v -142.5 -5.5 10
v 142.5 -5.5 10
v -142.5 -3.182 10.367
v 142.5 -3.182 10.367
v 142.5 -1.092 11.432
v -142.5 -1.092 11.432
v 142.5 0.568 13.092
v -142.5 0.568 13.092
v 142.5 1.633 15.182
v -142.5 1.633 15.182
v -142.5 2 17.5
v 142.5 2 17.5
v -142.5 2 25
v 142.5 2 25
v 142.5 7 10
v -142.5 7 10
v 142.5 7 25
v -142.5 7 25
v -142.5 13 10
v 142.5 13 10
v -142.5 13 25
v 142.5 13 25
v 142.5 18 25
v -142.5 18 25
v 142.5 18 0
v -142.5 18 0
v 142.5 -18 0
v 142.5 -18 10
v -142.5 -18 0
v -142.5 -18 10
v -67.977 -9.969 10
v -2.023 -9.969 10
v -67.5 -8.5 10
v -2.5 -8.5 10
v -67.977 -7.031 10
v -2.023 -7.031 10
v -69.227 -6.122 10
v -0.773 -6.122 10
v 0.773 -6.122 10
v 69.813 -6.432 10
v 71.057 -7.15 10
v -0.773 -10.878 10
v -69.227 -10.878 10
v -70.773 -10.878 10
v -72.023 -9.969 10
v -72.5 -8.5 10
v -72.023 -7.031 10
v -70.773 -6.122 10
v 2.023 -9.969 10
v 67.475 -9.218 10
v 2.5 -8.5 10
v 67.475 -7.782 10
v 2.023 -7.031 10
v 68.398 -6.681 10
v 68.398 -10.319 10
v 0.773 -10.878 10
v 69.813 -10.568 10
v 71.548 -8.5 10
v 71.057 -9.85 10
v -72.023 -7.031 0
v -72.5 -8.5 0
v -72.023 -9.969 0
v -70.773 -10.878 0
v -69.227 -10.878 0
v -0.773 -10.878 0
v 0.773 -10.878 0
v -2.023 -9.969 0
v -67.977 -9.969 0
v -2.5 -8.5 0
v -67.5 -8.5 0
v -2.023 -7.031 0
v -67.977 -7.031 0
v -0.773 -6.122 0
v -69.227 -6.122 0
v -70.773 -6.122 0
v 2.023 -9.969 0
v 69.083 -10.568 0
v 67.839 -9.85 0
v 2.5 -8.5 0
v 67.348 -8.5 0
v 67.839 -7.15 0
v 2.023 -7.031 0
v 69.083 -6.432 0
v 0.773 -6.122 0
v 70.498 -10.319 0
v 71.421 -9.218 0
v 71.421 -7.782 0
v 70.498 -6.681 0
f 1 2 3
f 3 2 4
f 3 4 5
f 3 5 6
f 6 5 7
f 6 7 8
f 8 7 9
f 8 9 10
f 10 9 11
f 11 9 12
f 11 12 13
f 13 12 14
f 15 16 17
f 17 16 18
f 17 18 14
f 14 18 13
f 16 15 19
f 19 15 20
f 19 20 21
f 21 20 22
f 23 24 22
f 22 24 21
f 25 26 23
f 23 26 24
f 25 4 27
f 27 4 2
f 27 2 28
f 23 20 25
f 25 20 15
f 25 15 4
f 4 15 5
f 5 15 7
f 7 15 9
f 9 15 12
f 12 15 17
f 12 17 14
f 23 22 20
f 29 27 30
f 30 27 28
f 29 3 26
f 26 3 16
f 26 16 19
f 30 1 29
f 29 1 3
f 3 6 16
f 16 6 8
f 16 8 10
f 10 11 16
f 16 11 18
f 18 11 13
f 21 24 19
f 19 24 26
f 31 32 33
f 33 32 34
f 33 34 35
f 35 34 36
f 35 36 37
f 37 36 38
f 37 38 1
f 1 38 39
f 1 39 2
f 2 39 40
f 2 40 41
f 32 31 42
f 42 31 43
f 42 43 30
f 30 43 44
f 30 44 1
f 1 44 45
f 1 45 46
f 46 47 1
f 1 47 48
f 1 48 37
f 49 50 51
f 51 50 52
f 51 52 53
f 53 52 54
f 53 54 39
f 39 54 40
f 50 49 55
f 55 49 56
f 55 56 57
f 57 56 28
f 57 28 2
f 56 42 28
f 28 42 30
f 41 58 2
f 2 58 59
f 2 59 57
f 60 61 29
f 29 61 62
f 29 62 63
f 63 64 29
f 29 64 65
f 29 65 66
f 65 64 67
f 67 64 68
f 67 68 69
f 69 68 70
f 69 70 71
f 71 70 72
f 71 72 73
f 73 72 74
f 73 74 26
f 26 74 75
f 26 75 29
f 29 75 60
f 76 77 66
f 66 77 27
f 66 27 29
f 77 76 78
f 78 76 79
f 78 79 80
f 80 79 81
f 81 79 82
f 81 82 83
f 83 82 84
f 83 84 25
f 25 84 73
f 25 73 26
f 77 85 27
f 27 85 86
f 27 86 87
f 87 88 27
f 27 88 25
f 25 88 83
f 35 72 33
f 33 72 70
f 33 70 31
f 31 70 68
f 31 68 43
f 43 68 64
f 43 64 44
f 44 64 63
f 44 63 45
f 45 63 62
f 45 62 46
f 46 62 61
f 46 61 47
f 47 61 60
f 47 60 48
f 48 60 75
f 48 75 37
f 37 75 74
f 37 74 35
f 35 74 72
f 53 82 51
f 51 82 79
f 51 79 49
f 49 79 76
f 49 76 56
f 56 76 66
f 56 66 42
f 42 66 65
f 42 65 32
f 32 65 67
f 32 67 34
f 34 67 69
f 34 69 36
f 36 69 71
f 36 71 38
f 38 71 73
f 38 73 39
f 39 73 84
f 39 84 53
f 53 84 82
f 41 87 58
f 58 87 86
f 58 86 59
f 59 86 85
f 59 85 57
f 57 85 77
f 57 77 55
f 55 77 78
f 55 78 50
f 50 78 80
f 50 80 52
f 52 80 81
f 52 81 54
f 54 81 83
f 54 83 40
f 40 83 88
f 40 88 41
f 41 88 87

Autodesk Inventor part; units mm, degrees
ref_plane "YZ Plane" through (0, 0, 0) normal (1, 0, 0) x (0, 1, 0)
ref_plane "XZ Plane" through (0, 0, 0) normal (0, 1, 0) x (-1, 0, 0)
ref_plane "XY Plane" through (0, 0, 0) normal (0, 0, 1) x (1, 0, 0)
sketch "Sketch1" plane through (0, 0, 0) normal (0, 0, 1) x (1, 0, 0)
  line L0 (142.5, 18) -> (-142.5, 18)
  line L1 (-142.5, 18) -> (-142.5, -18)
  line L2 (-142.5, -18) -> (142.5, -18)
  line L3 (142.5, -18) -> (142.5, 18)
  line L4 (142.5, 18) -> (-142.5, -18) construction
  line L5 (-142.5, 18) -> (142.5, -18) construction
  line L6 (-142.5, 18) -> (142.5, 18)
  line L7 (142.5, 18) -> (142.5, 8)
  line L8 (142.5, 8) -> (-142.5, 8)
  line L9 (-142.5, 8) -> (-142.5, 18)
  point P0 (0, 0)
  point P1 (142.5, 13)
  dimension "d0" = 285
  dimension "d1" = 36
  dimension "d4" = 5
extrude "Extrusion1" add sketch "Sketch1" along normal blind 10
sketch "Sketch4" plane through (0, 0, 10) normal (0, 0, 1) x (1, 0, 0)
  line L0 (-142.5, 18) -> (-142.5, -18) projected
  line L1 (-142.5, 18) -> (142.5, 18)
  line L2 (142.5, 18) -> (142.5, 13)
  line L3 (142.5, 13) -> (-142.5, 13)
  line L4 (-142.5, 13) -> (-142.5, 18)
  point P0 (0, 0)
  dimension "d5" = 285
  dimension "d6" = 5
extrude "Extrusion2" add sketch "Sketch4" along normal blind 15
sketch "Sketch5" plane through (0, 0, 10) normal (0, 0, 1) x (1, 0, 0)
  line L0 (-142.5, 18) -> (-142.5, -18) projected
  line L1 (-142.5, 7) -> (142.5, 7)
  line L2 (142.5, 7) -> (142.5, 2)
  line L3 (142.5, 2) -> (-142.5, 2)
  line L4 (-142.5, 2) -> (-142.5, 7)
  line L5 (142.5, 13) -> (-142.5, 13) projected
  point P0 (0, 0)
  dimension "d9" = 285
  dimension "d10" = 5
  dimension "d47" = 11
extrude "Extrusion3" add sketch "Sketch5" along normal blind 15
fillet "Fillet1" radius 7.5 1 edges at (0, 2, 10)
sketch "Sketch11" plane through (0, 0, 0) normal (0, 0, -1) x (-1, 0, 0)
  circle A0 centre (-69.4481, -8.5) radius 2.5 projected
  circle A1 centre (-69.4481, -8.5) radius 2.1
  circle A2 centre (0, -8.5) radius 2.5 projected
  circle A3 centre (0, -8.5) radius 2.1
  circle A4 centre (70, -8.5) radius 2.5 projected
  circle A5 centre (70, -8.5) radius 2.1
  point P0 (0, 0)
  dimension "d52" = 4.2
  dimension "d53" = 4.2
  dimension "d54" = 4.2
extrude "Extrusion4" cut sketch "Sketch11" against normal through all contours A1 | A2 | A3 | A4 | A5
equation "\"d53\" = d52"
equation "\"d54\" = d52"
properties part number "cheeseboard mounts v02"
